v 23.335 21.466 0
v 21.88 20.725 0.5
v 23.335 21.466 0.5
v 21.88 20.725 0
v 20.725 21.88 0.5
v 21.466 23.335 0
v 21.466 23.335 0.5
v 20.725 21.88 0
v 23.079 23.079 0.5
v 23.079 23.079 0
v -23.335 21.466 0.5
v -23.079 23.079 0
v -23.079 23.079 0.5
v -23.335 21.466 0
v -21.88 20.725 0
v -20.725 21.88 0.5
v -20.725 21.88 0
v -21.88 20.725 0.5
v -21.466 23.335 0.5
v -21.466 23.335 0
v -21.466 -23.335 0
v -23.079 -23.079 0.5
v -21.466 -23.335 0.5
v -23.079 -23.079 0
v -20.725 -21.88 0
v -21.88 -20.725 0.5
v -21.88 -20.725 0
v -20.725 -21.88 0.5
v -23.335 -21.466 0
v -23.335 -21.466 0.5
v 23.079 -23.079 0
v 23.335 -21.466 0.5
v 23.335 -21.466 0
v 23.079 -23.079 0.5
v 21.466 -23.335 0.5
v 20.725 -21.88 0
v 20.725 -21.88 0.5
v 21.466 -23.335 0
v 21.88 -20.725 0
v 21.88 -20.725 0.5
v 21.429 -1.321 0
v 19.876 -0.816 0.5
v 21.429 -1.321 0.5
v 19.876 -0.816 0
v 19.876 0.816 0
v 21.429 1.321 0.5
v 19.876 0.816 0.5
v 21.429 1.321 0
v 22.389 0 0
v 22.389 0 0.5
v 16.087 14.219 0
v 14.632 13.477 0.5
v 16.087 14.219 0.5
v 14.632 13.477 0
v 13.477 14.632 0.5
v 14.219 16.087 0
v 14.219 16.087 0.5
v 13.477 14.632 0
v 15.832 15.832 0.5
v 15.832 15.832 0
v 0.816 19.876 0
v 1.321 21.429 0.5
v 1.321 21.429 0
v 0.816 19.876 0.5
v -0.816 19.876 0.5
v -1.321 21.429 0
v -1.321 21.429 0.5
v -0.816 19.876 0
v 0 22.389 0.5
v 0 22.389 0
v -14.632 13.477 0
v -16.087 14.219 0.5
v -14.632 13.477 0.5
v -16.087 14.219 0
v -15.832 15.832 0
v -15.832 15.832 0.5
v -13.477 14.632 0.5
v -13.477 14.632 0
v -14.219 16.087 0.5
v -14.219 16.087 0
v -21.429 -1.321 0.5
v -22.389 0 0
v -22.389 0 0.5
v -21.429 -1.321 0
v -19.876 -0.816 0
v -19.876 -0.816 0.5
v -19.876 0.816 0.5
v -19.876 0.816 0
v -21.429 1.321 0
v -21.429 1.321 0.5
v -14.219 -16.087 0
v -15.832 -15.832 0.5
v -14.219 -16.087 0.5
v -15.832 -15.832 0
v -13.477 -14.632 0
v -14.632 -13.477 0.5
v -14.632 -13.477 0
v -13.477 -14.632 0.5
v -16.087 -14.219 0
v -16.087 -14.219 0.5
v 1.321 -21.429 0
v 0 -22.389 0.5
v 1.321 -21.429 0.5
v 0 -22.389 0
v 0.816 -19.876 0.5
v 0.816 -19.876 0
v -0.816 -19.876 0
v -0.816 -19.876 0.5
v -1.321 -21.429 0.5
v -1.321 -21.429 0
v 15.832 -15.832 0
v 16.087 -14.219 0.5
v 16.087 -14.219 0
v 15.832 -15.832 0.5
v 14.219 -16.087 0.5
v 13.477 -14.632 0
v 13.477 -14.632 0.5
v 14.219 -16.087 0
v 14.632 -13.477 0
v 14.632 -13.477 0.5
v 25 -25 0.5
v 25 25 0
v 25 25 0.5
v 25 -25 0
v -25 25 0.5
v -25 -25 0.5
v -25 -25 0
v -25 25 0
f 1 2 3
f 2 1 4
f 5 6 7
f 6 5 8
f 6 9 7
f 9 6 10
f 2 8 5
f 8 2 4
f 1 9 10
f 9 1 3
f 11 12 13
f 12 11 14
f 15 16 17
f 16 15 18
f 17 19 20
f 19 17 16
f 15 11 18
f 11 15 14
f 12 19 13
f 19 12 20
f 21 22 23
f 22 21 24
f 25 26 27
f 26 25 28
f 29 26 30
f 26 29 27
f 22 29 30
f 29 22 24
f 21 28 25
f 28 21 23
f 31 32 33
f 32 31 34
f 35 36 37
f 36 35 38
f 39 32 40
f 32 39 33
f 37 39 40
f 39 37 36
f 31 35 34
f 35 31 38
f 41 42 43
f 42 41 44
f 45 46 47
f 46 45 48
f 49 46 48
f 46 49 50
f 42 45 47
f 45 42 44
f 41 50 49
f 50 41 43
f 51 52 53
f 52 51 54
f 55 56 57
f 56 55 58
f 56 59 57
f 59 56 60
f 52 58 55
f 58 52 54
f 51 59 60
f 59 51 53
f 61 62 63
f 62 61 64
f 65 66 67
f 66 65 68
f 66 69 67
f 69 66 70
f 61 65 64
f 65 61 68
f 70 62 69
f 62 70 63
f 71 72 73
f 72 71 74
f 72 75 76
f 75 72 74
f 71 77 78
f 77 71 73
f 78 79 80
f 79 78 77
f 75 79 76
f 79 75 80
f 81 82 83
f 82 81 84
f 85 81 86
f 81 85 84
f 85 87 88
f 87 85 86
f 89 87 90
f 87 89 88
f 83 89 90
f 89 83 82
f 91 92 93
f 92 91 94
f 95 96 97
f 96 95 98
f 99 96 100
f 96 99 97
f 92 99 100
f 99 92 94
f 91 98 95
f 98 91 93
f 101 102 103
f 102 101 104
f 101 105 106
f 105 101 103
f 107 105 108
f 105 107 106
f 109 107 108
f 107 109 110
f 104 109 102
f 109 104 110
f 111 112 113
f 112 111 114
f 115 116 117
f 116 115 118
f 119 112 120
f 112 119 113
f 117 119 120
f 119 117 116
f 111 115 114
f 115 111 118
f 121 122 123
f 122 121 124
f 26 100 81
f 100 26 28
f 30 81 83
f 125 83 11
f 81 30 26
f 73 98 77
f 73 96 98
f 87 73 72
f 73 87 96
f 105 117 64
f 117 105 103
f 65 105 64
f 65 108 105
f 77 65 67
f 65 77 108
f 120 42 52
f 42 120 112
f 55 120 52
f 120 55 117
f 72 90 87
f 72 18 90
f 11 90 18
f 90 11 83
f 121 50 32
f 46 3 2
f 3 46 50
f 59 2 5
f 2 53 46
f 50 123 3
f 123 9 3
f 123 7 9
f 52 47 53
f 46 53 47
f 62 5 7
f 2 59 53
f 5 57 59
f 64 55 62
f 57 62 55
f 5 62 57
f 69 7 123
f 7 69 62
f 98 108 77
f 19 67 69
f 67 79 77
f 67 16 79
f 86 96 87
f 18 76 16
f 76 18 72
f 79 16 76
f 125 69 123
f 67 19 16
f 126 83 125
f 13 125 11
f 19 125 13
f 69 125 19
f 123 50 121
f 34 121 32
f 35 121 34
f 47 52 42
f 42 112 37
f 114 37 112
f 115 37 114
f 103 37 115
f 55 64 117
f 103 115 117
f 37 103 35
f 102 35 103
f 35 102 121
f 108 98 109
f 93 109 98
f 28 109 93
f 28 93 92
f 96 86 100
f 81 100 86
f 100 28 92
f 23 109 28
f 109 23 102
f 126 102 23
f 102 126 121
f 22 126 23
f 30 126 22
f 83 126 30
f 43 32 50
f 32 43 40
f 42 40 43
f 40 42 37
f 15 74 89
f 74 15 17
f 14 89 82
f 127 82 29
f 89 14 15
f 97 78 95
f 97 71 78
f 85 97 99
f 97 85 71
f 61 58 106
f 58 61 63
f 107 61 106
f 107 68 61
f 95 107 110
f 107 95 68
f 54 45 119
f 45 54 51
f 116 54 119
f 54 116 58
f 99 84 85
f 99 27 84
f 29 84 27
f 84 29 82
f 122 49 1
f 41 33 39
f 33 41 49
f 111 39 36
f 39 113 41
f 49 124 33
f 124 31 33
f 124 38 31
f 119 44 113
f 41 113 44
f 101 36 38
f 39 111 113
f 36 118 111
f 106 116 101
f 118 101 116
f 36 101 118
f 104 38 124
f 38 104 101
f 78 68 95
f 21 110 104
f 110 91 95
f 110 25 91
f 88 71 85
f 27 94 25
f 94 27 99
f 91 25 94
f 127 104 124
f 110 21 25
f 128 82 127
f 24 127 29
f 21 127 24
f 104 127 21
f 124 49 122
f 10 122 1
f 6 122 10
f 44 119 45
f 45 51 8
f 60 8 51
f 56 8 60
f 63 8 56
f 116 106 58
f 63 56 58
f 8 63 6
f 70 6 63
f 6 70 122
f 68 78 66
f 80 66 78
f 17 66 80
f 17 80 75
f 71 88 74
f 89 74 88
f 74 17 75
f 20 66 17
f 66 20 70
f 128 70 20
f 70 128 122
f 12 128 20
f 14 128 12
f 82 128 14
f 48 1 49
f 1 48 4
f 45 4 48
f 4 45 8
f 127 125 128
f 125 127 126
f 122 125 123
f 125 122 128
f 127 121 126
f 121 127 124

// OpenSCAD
//----------------------------------------------------------------------
// PDB sized plate
//----------------------------------------------------------------------

Wid=50;
Ht=.5;

Rad1=31.25;         // radius to outer holes
Rad2=21;            // radius to inner holes

DrillSz=7/64*25.4/2;

//----------------------------------------------------------------------

module plate() {
    difference() {
        // plate
        translate([-Wid/2,-Wid/2,0])
            cube([Wid,Wid,Ht]);

        // edge holes
        for (i = [0:3]) {
            rotate(90*i+45) {
                translate([Rad1,0,-1])
                   cylinder(h=Ht+2,r=DrillSz);
            }
        }

        // inner holes
        for (i = [0:7]) {
            rotate(45*i) {
                translate([Rad2,0,-1])
                   cylinder(h=Ht+2,r=DrillSz);
            }
        }

    }
}

//----------------------------------------------------------------------
// main print logic.  we can print one or several
//----------------------------------------------------------------------

BedWid=285;       // width of printer bed (x coordinate)
BedDep=153;       // depth of printer bed (y coordinate)
Gap=5;            // spacing between multiple copies

module several(a,b) {
    translate([-BedWid/2,-BedDep/2,0]) {
        for (a0=[0:a-1]) {
            for (b0=[0:b-1]) {
                translate([a0*(Wid+Gap),b0*(Wid+Gap),0])
                    plate();
            }
        }
    }
}

plate();
//several(2,3);
